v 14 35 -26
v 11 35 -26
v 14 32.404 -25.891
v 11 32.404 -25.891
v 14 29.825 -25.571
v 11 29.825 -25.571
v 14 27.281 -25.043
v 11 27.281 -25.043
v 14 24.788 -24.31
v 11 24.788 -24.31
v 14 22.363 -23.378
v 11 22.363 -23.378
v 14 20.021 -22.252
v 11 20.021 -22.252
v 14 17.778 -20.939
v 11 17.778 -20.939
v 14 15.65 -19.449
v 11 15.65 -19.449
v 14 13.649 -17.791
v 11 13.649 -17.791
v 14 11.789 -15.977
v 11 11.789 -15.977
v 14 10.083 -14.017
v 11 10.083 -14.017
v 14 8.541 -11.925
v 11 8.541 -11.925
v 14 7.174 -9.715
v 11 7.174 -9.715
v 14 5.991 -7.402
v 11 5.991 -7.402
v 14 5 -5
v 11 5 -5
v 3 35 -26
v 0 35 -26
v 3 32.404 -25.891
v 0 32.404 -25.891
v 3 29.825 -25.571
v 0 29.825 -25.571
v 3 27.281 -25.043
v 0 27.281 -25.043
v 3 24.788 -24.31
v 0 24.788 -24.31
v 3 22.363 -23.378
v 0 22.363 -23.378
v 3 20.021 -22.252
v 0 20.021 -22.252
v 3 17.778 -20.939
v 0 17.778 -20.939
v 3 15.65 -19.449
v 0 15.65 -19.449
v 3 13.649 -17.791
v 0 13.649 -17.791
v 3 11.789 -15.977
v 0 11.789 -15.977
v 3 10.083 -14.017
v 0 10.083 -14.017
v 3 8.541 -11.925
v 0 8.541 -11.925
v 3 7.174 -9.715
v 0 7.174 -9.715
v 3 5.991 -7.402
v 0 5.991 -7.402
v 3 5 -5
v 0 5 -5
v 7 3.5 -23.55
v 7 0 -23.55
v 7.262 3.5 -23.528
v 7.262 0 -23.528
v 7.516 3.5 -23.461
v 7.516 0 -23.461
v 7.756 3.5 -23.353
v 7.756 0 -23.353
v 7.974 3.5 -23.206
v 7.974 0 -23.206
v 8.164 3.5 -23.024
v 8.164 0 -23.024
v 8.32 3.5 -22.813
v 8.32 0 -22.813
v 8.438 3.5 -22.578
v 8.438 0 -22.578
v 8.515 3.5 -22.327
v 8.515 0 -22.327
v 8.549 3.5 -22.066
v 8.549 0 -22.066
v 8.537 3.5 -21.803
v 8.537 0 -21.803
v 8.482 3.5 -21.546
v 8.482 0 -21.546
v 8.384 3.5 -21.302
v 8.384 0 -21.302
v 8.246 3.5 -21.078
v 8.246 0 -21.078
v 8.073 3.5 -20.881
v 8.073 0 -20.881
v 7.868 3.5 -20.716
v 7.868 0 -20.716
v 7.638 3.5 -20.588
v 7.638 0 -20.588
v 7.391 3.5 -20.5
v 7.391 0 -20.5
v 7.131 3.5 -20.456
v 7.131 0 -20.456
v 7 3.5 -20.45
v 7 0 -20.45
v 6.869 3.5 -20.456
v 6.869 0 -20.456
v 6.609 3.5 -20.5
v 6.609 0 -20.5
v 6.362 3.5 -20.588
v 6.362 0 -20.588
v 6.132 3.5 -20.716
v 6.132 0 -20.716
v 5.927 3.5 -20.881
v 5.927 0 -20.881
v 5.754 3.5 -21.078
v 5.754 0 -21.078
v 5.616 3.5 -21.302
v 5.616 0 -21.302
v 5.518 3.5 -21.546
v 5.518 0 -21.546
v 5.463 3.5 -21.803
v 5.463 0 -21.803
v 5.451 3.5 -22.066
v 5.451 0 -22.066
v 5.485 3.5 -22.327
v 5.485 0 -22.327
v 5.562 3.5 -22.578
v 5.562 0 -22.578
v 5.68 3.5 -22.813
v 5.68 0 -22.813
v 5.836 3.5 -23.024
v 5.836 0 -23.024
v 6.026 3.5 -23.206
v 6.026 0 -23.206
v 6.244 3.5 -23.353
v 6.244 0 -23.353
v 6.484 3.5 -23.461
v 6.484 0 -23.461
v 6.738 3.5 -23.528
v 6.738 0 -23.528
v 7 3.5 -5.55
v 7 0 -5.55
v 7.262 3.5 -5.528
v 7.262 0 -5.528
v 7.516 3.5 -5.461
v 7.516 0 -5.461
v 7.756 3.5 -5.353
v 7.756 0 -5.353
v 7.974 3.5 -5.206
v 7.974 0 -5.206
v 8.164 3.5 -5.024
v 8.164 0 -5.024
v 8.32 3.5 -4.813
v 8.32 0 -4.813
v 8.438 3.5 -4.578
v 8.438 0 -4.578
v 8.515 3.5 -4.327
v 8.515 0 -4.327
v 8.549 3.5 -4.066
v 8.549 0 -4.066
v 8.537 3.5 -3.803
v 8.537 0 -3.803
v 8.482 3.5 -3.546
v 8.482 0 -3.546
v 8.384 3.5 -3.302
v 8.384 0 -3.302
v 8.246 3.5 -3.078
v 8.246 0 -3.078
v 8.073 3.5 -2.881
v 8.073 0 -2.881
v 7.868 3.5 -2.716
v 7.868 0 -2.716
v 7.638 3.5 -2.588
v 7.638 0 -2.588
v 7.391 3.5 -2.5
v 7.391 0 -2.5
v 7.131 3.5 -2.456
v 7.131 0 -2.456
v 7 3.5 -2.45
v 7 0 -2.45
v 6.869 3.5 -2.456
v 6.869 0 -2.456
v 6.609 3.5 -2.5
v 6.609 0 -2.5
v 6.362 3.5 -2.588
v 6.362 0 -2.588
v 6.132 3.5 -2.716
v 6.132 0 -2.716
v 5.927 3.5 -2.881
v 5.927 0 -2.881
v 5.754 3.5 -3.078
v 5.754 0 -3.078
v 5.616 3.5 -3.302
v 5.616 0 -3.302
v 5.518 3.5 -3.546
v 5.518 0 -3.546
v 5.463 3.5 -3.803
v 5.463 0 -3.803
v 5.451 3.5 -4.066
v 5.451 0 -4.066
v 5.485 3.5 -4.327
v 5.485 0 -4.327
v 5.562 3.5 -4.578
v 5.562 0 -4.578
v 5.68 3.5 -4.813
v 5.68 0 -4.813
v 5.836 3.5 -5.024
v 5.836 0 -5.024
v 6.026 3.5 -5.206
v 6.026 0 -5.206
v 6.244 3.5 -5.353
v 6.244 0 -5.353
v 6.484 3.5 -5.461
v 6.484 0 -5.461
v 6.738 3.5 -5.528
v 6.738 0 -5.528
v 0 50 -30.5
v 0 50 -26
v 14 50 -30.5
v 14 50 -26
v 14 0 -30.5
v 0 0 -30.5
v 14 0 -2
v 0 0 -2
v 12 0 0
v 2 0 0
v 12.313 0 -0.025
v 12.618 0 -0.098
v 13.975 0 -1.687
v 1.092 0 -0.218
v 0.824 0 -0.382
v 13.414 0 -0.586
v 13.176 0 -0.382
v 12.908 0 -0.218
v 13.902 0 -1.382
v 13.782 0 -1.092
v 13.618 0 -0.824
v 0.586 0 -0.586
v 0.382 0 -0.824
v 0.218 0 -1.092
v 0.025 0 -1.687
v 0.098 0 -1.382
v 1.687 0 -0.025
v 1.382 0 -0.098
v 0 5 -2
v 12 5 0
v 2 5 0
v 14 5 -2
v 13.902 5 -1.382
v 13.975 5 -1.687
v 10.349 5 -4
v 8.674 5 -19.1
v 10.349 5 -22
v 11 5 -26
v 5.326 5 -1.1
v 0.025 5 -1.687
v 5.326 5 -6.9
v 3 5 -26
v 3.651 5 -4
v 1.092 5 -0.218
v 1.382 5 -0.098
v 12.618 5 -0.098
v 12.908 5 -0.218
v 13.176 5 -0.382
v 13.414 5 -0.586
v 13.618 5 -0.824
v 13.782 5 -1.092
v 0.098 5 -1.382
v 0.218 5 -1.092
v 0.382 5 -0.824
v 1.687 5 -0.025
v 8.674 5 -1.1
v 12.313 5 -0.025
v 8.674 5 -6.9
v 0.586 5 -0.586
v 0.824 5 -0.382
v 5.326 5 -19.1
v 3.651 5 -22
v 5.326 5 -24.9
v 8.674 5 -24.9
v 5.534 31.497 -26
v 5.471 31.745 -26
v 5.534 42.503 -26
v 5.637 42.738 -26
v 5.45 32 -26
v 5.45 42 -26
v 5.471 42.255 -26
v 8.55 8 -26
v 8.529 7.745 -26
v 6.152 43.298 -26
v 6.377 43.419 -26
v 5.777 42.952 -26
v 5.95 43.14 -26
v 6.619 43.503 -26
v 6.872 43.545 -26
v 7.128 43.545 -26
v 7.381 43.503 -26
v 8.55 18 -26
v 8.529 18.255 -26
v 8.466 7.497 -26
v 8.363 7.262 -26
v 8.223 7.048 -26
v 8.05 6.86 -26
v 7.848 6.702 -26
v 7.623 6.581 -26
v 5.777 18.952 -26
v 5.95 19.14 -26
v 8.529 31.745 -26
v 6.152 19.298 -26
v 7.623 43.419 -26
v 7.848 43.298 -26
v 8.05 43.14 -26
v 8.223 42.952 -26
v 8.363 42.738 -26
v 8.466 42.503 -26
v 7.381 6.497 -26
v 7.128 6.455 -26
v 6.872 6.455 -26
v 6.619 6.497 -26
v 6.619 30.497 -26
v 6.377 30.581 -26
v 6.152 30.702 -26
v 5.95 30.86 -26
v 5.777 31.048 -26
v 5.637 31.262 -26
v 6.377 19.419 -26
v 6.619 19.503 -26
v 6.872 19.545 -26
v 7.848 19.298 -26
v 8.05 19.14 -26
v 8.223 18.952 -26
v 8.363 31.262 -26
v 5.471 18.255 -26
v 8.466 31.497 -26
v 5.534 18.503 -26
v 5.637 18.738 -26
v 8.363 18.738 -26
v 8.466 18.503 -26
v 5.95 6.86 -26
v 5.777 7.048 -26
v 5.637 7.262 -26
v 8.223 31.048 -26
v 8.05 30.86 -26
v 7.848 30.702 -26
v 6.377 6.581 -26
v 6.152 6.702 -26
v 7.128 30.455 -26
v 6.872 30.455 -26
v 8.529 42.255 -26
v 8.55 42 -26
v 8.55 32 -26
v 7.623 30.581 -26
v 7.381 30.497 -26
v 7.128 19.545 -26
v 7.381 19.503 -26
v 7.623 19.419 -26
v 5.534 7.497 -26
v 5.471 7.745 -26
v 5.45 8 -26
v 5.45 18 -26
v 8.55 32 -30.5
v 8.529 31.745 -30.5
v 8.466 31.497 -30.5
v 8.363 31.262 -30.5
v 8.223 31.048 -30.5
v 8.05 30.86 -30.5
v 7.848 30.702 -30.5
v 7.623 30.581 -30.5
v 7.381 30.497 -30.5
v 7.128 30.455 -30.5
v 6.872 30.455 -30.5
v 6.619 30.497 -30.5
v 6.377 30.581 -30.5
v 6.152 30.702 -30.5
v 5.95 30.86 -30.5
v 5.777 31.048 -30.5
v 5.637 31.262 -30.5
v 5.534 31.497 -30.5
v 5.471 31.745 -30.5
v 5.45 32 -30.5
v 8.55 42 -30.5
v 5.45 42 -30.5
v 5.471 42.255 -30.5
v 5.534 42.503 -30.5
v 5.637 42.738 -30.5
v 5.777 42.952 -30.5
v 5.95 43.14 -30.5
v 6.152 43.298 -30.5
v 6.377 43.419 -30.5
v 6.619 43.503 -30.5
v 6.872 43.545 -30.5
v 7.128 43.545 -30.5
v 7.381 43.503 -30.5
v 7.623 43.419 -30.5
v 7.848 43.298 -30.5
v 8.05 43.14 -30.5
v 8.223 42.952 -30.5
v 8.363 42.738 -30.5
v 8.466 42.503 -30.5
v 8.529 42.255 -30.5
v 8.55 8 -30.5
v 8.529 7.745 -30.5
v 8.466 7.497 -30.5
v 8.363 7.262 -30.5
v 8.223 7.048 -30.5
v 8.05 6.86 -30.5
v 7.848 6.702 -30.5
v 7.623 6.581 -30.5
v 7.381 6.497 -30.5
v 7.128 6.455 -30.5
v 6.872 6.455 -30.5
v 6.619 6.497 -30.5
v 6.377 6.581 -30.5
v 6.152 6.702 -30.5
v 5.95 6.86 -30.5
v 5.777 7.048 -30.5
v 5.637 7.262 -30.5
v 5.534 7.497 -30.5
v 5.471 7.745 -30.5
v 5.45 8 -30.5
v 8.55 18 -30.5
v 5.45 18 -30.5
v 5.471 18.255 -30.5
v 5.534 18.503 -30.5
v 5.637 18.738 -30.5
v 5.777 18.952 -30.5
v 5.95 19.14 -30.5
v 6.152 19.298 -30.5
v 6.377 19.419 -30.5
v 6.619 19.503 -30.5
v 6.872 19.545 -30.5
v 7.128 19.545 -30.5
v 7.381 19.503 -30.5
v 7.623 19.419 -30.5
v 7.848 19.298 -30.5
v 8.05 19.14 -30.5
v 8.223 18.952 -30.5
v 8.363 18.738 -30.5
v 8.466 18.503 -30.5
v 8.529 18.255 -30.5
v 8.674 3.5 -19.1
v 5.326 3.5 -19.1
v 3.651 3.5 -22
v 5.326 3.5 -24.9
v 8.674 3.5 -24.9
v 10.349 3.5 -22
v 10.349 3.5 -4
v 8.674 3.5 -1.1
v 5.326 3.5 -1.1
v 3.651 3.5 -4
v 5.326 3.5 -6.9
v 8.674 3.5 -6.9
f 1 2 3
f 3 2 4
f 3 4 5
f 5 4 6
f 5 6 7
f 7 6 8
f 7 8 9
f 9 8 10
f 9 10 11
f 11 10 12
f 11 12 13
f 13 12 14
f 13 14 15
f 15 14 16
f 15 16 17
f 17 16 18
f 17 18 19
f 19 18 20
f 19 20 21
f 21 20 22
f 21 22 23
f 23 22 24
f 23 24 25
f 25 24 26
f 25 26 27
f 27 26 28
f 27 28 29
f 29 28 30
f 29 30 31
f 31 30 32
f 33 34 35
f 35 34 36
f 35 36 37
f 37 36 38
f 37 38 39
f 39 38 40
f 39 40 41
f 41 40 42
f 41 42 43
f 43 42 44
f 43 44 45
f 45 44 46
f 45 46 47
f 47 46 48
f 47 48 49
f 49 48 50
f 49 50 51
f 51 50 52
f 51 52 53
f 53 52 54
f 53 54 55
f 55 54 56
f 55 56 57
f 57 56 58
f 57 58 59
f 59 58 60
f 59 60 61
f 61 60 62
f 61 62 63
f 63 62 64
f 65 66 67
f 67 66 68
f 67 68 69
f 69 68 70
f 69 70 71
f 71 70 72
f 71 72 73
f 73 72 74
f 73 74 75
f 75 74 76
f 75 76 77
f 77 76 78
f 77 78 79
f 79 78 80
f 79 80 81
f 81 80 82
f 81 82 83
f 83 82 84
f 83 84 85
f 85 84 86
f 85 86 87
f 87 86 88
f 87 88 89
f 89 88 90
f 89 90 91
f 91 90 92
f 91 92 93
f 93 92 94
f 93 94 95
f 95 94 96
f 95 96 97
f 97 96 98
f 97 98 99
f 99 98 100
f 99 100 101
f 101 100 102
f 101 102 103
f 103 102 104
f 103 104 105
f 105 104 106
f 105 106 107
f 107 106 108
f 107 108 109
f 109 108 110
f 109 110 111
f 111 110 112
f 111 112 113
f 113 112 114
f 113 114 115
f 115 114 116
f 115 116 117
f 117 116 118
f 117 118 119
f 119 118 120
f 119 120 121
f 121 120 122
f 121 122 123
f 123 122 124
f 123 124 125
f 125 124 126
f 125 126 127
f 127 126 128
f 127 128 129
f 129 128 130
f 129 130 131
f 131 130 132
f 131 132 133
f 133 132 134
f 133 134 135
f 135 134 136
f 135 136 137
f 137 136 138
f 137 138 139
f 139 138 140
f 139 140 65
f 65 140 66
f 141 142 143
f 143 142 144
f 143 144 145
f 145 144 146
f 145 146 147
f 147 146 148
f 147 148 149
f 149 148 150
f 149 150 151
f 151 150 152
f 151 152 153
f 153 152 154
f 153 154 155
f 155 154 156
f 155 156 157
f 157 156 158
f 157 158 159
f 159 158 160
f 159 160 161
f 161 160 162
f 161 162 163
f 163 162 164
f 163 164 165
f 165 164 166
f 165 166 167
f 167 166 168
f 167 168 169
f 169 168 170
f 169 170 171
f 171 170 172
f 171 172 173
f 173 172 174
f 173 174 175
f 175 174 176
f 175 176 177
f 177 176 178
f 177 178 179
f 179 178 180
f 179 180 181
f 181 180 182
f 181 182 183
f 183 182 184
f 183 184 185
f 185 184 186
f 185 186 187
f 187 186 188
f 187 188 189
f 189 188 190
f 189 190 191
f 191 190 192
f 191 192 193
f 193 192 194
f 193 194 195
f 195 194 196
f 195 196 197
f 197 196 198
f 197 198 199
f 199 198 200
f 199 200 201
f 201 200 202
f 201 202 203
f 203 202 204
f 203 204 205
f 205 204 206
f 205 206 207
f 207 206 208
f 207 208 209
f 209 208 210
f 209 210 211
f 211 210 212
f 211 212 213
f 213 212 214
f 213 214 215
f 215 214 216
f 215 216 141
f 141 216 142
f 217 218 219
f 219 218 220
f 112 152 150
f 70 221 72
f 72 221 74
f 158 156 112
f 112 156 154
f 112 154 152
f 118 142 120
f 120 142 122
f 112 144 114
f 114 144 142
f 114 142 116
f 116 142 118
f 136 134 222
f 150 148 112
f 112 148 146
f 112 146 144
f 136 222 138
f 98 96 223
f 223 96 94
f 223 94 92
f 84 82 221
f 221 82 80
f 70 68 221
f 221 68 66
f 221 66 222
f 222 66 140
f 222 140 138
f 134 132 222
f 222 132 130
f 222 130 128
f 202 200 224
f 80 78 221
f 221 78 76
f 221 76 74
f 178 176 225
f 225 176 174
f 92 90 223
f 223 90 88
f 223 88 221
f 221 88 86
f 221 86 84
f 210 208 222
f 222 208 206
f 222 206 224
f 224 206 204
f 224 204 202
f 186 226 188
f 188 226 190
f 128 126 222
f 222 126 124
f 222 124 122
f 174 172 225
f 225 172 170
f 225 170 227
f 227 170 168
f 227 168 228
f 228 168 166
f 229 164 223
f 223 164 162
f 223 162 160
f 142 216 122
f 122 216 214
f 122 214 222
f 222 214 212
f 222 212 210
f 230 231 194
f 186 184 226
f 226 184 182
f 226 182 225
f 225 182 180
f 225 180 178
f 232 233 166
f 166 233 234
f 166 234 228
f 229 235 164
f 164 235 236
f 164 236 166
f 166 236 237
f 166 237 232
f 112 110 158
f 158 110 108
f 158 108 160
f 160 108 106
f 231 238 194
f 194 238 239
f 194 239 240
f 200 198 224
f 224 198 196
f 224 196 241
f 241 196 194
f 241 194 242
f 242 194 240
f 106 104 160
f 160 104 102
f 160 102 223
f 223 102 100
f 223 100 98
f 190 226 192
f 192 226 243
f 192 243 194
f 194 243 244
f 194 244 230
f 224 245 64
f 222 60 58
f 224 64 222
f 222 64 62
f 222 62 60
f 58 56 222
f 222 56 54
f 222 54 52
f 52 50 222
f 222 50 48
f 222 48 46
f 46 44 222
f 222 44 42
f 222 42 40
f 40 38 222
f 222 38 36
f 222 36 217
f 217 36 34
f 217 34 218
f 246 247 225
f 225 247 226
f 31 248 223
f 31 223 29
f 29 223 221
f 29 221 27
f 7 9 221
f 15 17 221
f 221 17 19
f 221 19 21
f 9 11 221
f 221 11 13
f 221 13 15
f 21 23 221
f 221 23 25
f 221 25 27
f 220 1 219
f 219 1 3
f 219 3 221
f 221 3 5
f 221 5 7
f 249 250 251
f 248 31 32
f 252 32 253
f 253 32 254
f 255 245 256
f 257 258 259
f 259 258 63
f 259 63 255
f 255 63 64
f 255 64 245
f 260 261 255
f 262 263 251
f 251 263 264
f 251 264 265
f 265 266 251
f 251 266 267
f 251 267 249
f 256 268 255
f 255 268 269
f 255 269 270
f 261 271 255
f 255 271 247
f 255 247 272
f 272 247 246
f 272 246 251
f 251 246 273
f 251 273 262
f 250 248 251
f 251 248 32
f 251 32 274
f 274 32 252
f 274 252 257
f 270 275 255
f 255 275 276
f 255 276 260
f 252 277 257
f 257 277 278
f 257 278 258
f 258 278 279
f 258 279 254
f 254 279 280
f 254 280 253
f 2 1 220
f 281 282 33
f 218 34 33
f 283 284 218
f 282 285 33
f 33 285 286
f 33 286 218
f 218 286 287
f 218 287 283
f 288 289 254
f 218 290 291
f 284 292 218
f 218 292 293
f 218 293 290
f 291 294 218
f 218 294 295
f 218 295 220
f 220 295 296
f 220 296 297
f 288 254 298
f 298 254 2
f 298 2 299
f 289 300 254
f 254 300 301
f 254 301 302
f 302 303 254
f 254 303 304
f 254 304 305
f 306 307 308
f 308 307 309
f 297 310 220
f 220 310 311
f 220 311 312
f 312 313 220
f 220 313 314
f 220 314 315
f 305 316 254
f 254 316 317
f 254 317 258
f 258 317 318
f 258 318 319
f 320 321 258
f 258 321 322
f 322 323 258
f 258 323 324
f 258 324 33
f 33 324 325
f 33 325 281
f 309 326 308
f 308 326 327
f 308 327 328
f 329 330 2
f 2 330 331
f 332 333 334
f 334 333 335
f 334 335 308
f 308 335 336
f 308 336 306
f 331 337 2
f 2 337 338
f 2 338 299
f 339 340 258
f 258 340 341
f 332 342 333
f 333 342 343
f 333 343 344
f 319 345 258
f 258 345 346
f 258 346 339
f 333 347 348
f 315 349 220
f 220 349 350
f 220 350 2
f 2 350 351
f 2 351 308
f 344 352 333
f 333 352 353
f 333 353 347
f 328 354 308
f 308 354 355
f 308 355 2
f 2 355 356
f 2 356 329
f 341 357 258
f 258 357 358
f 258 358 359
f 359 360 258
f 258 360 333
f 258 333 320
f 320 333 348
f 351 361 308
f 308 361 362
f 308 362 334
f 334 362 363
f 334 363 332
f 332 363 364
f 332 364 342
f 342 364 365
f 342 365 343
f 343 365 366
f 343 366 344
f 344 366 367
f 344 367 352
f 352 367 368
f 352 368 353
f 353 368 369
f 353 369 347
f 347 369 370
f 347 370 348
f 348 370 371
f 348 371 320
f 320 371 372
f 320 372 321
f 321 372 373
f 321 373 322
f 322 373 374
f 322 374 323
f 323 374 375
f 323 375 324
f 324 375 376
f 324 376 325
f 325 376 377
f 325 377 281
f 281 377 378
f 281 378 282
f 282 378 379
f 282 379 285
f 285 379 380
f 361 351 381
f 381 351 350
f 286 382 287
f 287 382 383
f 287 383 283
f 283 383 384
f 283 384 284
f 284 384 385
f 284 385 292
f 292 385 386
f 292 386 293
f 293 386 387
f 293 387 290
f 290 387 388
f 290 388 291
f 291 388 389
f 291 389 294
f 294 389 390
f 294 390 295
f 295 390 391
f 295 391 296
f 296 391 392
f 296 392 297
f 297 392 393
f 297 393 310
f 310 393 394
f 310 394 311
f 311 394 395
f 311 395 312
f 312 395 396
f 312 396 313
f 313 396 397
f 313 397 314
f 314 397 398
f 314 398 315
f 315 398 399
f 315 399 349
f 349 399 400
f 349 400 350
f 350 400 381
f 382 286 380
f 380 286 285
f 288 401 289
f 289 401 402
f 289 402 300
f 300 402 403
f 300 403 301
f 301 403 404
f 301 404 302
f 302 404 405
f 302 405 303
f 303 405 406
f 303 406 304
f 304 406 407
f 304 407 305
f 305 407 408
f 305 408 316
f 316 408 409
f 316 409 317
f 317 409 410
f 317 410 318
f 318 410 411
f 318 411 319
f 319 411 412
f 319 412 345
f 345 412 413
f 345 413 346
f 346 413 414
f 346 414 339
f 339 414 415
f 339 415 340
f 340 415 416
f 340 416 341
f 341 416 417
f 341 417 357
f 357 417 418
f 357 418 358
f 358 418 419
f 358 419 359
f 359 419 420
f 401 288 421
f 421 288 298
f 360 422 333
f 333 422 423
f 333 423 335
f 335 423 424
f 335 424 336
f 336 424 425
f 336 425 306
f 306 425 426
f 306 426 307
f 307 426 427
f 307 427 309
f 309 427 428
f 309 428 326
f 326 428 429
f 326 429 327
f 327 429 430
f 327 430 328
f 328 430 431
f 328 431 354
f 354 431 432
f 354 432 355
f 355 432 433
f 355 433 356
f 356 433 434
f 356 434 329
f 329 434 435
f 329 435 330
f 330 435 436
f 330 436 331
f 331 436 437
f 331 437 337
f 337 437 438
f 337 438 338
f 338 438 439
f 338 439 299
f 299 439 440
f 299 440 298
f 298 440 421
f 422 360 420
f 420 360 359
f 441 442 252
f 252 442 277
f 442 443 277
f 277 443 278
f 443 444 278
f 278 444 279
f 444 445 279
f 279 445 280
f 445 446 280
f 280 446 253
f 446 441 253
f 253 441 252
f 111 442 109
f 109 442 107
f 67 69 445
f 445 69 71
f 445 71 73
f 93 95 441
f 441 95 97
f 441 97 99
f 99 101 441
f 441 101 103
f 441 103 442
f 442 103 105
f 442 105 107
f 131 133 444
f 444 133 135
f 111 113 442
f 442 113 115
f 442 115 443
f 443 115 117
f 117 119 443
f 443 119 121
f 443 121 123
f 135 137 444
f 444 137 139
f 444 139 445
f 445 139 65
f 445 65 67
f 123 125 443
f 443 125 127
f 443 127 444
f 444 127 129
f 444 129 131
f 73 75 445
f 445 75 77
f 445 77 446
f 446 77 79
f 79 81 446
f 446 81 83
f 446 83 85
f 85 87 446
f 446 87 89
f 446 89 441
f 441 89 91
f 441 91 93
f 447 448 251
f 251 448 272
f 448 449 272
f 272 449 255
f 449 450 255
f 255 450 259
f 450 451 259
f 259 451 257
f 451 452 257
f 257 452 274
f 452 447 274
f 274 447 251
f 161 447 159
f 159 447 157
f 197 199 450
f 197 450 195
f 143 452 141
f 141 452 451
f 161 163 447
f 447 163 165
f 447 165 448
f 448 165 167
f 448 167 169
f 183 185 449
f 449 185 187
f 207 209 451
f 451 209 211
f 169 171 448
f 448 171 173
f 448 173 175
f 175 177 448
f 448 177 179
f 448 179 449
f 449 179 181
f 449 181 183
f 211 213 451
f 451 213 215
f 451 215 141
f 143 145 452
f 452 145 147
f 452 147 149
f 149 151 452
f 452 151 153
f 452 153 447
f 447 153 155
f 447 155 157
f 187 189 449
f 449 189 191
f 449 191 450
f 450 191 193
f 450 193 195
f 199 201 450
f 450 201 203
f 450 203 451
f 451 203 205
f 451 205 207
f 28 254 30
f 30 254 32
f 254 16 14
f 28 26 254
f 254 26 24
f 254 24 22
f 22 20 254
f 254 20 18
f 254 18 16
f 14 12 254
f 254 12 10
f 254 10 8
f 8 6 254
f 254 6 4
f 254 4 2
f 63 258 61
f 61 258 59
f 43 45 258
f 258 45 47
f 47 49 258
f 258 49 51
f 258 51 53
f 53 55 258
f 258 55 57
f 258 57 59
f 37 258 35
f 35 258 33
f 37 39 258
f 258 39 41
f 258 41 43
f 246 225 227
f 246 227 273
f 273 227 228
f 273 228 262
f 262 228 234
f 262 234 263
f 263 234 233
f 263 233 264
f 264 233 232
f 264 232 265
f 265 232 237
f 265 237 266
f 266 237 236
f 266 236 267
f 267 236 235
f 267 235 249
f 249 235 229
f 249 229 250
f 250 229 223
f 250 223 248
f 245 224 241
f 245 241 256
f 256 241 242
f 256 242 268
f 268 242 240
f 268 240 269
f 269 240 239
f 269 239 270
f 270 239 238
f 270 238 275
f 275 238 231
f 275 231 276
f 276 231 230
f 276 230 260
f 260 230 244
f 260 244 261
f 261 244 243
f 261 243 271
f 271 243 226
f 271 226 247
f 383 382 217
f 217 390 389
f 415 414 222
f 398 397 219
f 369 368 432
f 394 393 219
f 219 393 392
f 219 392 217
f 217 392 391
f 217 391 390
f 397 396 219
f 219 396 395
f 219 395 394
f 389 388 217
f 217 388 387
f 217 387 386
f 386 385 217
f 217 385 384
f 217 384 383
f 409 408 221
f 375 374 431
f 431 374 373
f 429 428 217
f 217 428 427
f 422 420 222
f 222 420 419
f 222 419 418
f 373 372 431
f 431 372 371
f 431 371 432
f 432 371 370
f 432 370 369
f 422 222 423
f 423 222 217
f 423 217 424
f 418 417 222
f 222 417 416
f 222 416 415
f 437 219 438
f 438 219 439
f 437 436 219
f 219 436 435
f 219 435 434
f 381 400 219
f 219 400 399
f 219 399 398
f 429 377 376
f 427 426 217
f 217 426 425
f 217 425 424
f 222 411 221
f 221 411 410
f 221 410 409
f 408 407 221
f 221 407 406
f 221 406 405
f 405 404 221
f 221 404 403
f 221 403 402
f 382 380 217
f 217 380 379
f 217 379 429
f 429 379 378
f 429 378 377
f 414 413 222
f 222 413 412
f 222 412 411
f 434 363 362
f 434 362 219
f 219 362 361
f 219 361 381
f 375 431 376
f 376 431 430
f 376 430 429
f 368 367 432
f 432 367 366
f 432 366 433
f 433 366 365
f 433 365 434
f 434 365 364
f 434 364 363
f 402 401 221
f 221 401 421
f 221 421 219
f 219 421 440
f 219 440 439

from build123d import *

# Parameters (mm, degrees)
CROQUIS2_W              = 14
CROQUIS2_H              = 31
CROQUIS2_R              = 1.55
SALIENTE_EXTRUIR1_DEPTH = 50
CROQUIS3_W              = 26
CROQUIS3_H              = 45
CORTAR_EXTRUIR1_DEPTH   = 14
CORTAR_EXTRUIR2_DEPTH   = 5
CORTAR_EXTRUIR3_DEPTH   = 1.5
SALIENTE_EXTRUIR3_DEPTH = 14
CROQUIS7_OUTSIDE_W      = 28.094
CROQUIS7_OUTSIDE_H      = 45.094
CORTAR_EXTRUIR5_DEPTH   = 45
REDONDEO1_R             = 2
CROQUIS8_W              = 14
CROQUIS8_H              = 0.5
CORTAR_EXTRUIR6_DEPTH   = 50


with BuildPart() as part:
    # Croquis2 → Saliente-Extruir1 (new body)
    with BuildSketch(Plane(origin=(0, 0, 0), x_dir=(1, 0, 0), z_dir=(0, 1, 0))):
        with Locations((7, 15.5)):
            Rectangle(CROQUIS2_W, CROQUIS2_H)
        with Locations((7, 22)):
            Circle(CROQUIS2_R, mode=Mode.SUBTRACT)
        with Locations((7, 4)):
            Circle(CROQUIS2_R, mode=Mode.SUBTRACT)
    extrude(amount=SALIENTE_EXTRUIR1_DEPTH)

    # Croquis3 → Cortar-Extruir1 (cut)
    with BuildSketch(Plane.ZY):
        with Locations((-13, 27.5)):
            Rectangle(CROQUIS3_W, CROQUIS3_H)
    extrude(amount=-CORTAR_EXTRUIR1_DEPTH, mode=Mode.SUBTRACT)

    # Croquis4 → Cortar-Extruir2 (cut)
    with BuildSketch(Plane(origin=(0, 0, -31), x_dir=(-1, 0, 0), z_dir=(0, 0, -1))):
        with BuildLine():
            Line((-8.55, 8), (-8.55, 18))
            ThreePointArc((-8.55, 18), (-7, 19.55), (-5.45, 18))
            Line((-5.45, 18), (-5.45, 8))
            ThreePointArc((-5.45, 8), (-7, 6.45), (-8.55, 8))
        make_face()
        with BuildLine():
            Line((-8.55, 32), (-8.55, 42))
            ThreePointArc((-8.55, 42), (-7, 43.55), (-5.45, 42))
            Line((-5.45, 42), (-5.45, 32))
            ThreePointArc((-5.45, 32), (-7, 30.45), (-8.55, 32))
        make_face()
    extrude(amount=-CORTAR_EXTRUIR2_DEPTH, mode=Mode.SUBTRACT)

    # Croquis5 → Cortar-Extruir3 (cut)
    with BuildSketch(Plane(origin=(0, 5, 0), x_dir=(1, 0, 0), z_dir=(0, 1, 0))):
        Polygon((10.348631561, 4), (8.674315781, 6.9), (5.325684219, 6.9), (3.651368439, 4), (5.325684219, 1.1), (8.674315781, 1.1), align=None)
        Polygon((8.674315781, 19.1), (10.348631561, 22), (8.674315781, 24.9), (5.325684219, 24.9), (3.651368439, 22), (5.325684219, 19.1), align=None)
    extrude(amount=-CORTAR_EXTRUIR3_DEPTH, mode=Mode.SUBTRACT)

    # Croquis6 → Saliente-Extruir3 (add)
    with BuildSketch(Plane.ZY):
        with BuildLine():
            Line((-26, 5), (-26, 35))
            ThreePointArc((-26, 35), (-20.21590319, 16.698867767), (-5, 5))
            Line((-5, 5), (-26, 5))
        make_face()
    extrude(amount=-SALIENTE_EXTRUIR3_DEPTH)

    # Croquis7 outside → Cortar-Extruir5 (cut)
    with BuildSketch(Plane(origin=(0, 50, 0), x_dir=(1, 0, 0), z_dir=(0, 1, 0))):
        with Locations((7, 15.5)):
            Rectangle(CROQUIS7_OUTSIDE_W, CROQUIS7_OUTSIDE_H)
        Polygon((0, 26), (0, 0), (3, 0), (3, 26), (11, 26), (11, 0), (14, 0), (14, 26), (14, 31), (0, 31), align=None, mode=Mode.SUBTRACT)
    extrude(amount=-CORTAR_EXTRUIR5_DEPTH, mode=Mode.SUBTRACT)

    # Redondeo1
    redondeo1_edges = [part.edges().sort_by_distance(p)[0] for p in [
        (14, 2.5, 0),
        (0, 2.5, 0),
    ]]
    fillet(redondeo1_edges, radius=REDONDEO1_R)

    # Croquis8 → Cortar-Extruir6 (cut)
    with BuildSketch(Plane(origin=(0, 50, 0), x_dir=(1, 0, 0), z_dir=(0, 1, 0))):
        with Locations((7, 30.75)):
            Rectangle(CROQUIS8_W, CROQUIS8_H)
    extrude(amount=-CORTAR_EXTRUIR6_DEPTH, mode=Mode.SUBTRACT)


solid = part.part
